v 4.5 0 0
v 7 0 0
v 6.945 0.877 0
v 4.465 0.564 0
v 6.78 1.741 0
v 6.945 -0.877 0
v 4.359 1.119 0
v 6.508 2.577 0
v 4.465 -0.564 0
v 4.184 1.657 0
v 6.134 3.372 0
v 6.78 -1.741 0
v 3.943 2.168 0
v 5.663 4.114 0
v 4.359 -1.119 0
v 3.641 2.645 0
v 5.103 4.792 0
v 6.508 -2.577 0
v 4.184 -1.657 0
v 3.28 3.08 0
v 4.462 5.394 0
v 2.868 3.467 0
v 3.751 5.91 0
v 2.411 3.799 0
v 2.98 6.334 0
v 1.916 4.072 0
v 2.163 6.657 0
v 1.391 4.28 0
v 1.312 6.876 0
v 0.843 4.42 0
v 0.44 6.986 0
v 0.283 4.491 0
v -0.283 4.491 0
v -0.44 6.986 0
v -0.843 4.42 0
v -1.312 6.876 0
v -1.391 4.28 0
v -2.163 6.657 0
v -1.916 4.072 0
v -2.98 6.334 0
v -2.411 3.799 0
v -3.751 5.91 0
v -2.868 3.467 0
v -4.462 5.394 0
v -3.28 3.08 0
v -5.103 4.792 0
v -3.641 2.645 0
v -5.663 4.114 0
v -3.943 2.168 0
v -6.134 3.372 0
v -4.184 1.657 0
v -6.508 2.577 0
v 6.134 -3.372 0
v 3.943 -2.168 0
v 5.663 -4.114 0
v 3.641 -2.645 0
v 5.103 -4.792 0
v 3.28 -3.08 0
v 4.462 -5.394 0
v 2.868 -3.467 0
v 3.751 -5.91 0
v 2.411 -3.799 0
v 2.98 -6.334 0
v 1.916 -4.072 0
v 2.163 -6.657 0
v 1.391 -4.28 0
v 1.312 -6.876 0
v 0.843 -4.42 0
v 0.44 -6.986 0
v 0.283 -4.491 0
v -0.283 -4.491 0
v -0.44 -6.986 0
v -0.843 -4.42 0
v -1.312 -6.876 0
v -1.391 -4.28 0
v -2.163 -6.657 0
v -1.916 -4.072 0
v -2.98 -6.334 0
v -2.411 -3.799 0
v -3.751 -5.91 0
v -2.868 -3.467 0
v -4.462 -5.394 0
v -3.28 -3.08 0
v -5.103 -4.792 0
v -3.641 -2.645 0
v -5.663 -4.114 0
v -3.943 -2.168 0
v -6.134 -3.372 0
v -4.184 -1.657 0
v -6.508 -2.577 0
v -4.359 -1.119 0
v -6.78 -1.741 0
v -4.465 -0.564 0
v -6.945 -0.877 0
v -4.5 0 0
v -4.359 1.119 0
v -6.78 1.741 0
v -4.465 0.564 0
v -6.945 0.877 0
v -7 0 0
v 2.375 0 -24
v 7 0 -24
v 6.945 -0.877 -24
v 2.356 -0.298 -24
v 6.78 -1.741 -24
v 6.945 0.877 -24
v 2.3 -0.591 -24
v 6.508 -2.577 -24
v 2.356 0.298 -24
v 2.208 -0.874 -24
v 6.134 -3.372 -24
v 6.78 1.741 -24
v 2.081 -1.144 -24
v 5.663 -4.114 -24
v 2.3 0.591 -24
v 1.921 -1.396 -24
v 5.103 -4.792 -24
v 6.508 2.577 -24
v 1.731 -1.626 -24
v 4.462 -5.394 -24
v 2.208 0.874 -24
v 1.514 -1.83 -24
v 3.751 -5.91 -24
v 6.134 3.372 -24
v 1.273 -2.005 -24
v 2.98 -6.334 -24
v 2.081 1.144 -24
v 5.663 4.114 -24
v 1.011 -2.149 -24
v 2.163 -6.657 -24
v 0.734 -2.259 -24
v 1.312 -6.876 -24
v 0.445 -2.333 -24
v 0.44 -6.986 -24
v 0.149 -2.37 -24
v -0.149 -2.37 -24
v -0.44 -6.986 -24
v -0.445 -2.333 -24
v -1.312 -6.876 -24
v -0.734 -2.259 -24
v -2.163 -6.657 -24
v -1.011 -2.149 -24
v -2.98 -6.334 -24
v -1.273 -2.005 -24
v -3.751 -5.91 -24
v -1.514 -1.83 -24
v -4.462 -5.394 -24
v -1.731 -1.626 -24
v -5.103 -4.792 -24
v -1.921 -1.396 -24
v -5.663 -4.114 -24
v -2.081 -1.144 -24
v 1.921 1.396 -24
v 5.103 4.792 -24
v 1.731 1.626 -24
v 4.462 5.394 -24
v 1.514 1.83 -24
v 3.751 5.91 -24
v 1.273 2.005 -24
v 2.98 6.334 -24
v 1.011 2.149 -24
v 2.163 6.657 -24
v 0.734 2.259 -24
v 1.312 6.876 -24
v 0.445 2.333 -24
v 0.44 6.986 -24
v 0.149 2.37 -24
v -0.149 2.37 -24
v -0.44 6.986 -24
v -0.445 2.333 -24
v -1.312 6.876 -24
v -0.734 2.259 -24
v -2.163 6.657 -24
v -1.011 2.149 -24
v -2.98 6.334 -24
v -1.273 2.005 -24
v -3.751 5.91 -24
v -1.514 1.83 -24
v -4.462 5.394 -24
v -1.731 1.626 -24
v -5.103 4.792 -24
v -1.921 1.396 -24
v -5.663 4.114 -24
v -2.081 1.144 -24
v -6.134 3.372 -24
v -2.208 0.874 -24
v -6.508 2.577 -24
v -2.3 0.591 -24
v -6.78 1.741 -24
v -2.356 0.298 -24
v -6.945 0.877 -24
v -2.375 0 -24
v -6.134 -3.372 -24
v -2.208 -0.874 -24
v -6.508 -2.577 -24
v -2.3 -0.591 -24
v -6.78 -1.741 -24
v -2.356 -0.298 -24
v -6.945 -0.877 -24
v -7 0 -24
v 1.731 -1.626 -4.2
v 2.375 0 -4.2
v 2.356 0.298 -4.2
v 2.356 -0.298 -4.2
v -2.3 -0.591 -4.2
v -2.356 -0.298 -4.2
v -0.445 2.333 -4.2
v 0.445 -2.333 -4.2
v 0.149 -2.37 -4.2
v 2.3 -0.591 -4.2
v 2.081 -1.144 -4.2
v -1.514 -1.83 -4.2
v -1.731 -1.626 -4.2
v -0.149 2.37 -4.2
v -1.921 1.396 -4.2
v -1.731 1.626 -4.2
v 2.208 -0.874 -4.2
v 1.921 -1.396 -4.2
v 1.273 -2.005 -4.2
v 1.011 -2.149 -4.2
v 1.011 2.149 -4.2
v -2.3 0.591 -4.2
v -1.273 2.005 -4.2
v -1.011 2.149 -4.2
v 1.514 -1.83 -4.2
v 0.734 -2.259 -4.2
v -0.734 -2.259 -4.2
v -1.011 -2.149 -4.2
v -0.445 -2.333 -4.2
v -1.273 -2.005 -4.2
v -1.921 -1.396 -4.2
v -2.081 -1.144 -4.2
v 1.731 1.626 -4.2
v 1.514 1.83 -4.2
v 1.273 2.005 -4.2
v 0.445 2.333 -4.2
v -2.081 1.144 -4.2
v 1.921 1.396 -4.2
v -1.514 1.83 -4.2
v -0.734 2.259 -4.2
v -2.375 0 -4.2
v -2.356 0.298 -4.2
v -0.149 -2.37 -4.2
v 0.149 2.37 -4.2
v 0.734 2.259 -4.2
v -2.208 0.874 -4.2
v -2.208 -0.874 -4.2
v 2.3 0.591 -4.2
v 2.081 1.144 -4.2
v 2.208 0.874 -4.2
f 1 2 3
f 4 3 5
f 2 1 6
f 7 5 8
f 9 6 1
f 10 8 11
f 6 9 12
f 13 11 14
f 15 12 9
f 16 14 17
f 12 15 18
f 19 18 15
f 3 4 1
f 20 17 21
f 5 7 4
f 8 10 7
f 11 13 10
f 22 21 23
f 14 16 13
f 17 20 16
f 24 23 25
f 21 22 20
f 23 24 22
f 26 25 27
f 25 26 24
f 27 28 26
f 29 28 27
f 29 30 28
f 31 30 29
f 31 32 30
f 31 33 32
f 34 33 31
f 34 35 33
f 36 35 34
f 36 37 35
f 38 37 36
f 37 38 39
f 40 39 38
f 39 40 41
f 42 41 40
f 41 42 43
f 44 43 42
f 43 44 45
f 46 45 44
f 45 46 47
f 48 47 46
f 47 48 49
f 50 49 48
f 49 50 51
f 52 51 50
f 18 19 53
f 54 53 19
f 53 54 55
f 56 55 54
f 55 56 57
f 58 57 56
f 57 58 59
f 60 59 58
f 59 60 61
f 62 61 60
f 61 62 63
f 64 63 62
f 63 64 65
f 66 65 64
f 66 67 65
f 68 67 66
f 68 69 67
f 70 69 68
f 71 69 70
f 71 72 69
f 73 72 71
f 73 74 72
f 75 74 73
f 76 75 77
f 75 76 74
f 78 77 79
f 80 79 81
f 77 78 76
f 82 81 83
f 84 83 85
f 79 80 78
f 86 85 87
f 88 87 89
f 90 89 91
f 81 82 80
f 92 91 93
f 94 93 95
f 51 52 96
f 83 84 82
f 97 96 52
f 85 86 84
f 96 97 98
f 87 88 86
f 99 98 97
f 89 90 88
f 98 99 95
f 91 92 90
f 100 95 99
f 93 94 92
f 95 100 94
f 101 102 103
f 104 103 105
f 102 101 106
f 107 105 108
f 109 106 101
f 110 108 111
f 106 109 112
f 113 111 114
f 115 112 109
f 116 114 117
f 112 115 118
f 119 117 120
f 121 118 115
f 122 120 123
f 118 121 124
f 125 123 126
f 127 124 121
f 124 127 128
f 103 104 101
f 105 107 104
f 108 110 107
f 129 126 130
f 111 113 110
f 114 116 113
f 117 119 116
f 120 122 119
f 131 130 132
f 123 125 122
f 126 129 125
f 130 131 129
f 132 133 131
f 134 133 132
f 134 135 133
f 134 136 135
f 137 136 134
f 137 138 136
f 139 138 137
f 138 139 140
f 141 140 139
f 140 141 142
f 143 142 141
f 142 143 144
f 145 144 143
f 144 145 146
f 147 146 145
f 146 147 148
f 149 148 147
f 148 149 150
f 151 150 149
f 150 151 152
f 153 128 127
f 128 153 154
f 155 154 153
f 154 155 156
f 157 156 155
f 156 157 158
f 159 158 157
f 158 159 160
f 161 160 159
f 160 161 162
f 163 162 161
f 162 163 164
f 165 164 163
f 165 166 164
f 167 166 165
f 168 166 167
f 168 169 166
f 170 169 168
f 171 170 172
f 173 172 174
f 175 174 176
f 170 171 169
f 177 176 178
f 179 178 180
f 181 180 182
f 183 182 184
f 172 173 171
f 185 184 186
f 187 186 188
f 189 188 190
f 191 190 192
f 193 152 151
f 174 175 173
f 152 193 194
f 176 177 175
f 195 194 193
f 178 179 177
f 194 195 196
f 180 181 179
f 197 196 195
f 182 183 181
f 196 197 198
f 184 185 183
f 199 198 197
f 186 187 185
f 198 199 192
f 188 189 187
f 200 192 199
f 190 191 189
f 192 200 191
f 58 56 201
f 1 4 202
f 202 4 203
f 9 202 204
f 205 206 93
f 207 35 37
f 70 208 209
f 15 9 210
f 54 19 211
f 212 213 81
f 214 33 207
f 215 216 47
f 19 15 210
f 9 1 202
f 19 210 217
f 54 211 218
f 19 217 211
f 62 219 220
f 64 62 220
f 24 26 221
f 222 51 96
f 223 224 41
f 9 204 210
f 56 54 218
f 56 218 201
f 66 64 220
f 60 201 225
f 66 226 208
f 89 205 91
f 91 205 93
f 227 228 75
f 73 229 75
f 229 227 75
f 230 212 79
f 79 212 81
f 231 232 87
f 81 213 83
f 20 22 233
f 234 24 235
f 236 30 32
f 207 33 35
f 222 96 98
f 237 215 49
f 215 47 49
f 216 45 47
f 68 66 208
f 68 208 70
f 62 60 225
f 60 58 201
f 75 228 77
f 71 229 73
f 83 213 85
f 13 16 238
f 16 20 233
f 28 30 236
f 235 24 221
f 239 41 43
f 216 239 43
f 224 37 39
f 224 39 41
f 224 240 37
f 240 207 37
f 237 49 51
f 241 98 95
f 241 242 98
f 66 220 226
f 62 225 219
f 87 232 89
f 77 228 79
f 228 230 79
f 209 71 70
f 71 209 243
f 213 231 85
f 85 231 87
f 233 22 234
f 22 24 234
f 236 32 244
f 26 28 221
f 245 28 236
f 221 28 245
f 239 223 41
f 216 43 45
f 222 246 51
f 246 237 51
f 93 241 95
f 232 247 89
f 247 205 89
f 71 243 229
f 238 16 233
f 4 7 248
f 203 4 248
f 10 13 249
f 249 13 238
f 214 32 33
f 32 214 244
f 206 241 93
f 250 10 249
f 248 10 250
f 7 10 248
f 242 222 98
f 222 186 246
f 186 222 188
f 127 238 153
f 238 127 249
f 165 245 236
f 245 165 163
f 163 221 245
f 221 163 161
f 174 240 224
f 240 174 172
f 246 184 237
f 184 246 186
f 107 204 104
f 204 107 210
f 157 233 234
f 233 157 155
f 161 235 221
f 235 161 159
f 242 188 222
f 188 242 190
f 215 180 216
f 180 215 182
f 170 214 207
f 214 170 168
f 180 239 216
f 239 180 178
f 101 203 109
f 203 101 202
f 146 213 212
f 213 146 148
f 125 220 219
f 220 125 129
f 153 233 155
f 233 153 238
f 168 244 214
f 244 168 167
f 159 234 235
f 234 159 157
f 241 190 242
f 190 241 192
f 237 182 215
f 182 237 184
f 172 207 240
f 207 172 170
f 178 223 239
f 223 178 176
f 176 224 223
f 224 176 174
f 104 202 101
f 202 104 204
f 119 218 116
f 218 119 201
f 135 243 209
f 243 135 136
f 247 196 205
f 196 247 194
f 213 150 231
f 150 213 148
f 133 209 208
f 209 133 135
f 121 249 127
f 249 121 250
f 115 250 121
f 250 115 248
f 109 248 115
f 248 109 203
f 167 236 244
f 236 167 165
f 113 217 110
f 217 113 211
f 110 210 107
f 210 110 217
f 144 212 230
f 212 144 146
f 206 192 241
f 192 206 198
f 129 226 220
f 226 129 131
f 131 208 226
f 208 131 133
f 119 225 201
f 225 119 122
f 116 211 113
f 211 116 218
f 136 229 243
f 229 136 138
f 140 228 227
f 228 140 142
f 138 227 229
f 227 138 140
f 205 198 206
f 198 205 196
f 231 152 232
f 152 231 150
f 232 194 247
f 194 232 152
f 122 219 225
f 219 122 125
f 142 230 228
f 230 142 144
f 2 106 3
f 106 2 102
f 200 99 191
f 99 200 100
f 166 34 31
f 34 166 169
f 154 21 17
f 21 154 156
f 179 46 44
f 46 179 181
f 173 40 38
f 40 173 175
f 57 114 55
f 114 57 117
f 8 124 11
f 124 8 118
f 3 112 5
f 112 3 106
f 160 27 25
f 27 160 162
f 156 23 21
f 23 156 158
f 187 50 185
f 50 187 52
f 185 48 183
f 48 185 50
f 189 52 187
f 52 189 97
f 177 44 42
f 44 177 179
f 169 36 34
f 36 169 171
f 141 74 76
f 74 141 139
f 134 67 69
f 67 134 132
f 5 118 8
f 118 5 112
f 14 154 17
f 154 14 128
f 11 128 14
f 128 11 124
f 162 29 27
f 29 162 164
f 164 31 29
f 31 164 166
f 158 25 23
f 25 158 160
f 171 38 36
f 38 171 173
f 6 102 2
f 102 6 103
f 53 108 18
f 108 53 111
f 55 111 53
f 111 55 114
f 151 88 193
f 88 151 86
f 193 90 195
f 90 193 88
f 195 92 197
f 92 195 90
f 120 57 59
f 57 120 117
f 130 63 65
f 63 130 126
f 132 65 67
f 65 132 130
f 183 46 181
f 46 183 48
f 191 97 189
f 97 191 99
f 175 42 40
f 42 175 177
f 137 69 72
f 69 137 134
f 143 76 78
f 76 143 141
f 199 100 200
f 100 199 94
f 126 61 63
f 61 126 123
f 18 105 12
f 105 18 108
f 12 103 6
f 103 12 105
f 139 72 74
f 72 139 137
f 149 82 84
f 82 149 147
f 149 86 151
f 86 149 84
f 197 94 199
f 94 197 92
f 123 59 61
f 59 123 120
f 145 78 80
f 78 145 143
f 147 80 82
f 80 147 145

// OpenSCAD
$fn = 50;


difference() {
	union() {
		translate(v = [0, 0, -24.0000000000]) {
			cylinder(h = 24, r = 7.0000000000);
		}
		cylinder(h = 0, r = 17.0000000000);
	}
	union() {
		translate(v = [0, 0, 0]) {
			rotate(a = [0, 0, 0]) {
				difference() {
					union() {
						#translate(v = [0, 0, -24.0000000000]) {
							cylinder(h = 24, r = 2.2500000000);
						}
						#translate(v = [0, 0, -4.2000000000]) {
							cylinder(h = 4.2000000000, r1 = 2.3750000000, r2 = 4.5000000000);
						}
						#translate(v = [0, 0, -24.0000000000]) {
							cylinder(h = 24, r = 2.3750000000);
						}
						#translate(v = [0, 0, -24.0000000000]) {
							cylinder(h = 24, r = 2.2500000000);
						}
					}
					union();
				}
			}
		}
	}
}
